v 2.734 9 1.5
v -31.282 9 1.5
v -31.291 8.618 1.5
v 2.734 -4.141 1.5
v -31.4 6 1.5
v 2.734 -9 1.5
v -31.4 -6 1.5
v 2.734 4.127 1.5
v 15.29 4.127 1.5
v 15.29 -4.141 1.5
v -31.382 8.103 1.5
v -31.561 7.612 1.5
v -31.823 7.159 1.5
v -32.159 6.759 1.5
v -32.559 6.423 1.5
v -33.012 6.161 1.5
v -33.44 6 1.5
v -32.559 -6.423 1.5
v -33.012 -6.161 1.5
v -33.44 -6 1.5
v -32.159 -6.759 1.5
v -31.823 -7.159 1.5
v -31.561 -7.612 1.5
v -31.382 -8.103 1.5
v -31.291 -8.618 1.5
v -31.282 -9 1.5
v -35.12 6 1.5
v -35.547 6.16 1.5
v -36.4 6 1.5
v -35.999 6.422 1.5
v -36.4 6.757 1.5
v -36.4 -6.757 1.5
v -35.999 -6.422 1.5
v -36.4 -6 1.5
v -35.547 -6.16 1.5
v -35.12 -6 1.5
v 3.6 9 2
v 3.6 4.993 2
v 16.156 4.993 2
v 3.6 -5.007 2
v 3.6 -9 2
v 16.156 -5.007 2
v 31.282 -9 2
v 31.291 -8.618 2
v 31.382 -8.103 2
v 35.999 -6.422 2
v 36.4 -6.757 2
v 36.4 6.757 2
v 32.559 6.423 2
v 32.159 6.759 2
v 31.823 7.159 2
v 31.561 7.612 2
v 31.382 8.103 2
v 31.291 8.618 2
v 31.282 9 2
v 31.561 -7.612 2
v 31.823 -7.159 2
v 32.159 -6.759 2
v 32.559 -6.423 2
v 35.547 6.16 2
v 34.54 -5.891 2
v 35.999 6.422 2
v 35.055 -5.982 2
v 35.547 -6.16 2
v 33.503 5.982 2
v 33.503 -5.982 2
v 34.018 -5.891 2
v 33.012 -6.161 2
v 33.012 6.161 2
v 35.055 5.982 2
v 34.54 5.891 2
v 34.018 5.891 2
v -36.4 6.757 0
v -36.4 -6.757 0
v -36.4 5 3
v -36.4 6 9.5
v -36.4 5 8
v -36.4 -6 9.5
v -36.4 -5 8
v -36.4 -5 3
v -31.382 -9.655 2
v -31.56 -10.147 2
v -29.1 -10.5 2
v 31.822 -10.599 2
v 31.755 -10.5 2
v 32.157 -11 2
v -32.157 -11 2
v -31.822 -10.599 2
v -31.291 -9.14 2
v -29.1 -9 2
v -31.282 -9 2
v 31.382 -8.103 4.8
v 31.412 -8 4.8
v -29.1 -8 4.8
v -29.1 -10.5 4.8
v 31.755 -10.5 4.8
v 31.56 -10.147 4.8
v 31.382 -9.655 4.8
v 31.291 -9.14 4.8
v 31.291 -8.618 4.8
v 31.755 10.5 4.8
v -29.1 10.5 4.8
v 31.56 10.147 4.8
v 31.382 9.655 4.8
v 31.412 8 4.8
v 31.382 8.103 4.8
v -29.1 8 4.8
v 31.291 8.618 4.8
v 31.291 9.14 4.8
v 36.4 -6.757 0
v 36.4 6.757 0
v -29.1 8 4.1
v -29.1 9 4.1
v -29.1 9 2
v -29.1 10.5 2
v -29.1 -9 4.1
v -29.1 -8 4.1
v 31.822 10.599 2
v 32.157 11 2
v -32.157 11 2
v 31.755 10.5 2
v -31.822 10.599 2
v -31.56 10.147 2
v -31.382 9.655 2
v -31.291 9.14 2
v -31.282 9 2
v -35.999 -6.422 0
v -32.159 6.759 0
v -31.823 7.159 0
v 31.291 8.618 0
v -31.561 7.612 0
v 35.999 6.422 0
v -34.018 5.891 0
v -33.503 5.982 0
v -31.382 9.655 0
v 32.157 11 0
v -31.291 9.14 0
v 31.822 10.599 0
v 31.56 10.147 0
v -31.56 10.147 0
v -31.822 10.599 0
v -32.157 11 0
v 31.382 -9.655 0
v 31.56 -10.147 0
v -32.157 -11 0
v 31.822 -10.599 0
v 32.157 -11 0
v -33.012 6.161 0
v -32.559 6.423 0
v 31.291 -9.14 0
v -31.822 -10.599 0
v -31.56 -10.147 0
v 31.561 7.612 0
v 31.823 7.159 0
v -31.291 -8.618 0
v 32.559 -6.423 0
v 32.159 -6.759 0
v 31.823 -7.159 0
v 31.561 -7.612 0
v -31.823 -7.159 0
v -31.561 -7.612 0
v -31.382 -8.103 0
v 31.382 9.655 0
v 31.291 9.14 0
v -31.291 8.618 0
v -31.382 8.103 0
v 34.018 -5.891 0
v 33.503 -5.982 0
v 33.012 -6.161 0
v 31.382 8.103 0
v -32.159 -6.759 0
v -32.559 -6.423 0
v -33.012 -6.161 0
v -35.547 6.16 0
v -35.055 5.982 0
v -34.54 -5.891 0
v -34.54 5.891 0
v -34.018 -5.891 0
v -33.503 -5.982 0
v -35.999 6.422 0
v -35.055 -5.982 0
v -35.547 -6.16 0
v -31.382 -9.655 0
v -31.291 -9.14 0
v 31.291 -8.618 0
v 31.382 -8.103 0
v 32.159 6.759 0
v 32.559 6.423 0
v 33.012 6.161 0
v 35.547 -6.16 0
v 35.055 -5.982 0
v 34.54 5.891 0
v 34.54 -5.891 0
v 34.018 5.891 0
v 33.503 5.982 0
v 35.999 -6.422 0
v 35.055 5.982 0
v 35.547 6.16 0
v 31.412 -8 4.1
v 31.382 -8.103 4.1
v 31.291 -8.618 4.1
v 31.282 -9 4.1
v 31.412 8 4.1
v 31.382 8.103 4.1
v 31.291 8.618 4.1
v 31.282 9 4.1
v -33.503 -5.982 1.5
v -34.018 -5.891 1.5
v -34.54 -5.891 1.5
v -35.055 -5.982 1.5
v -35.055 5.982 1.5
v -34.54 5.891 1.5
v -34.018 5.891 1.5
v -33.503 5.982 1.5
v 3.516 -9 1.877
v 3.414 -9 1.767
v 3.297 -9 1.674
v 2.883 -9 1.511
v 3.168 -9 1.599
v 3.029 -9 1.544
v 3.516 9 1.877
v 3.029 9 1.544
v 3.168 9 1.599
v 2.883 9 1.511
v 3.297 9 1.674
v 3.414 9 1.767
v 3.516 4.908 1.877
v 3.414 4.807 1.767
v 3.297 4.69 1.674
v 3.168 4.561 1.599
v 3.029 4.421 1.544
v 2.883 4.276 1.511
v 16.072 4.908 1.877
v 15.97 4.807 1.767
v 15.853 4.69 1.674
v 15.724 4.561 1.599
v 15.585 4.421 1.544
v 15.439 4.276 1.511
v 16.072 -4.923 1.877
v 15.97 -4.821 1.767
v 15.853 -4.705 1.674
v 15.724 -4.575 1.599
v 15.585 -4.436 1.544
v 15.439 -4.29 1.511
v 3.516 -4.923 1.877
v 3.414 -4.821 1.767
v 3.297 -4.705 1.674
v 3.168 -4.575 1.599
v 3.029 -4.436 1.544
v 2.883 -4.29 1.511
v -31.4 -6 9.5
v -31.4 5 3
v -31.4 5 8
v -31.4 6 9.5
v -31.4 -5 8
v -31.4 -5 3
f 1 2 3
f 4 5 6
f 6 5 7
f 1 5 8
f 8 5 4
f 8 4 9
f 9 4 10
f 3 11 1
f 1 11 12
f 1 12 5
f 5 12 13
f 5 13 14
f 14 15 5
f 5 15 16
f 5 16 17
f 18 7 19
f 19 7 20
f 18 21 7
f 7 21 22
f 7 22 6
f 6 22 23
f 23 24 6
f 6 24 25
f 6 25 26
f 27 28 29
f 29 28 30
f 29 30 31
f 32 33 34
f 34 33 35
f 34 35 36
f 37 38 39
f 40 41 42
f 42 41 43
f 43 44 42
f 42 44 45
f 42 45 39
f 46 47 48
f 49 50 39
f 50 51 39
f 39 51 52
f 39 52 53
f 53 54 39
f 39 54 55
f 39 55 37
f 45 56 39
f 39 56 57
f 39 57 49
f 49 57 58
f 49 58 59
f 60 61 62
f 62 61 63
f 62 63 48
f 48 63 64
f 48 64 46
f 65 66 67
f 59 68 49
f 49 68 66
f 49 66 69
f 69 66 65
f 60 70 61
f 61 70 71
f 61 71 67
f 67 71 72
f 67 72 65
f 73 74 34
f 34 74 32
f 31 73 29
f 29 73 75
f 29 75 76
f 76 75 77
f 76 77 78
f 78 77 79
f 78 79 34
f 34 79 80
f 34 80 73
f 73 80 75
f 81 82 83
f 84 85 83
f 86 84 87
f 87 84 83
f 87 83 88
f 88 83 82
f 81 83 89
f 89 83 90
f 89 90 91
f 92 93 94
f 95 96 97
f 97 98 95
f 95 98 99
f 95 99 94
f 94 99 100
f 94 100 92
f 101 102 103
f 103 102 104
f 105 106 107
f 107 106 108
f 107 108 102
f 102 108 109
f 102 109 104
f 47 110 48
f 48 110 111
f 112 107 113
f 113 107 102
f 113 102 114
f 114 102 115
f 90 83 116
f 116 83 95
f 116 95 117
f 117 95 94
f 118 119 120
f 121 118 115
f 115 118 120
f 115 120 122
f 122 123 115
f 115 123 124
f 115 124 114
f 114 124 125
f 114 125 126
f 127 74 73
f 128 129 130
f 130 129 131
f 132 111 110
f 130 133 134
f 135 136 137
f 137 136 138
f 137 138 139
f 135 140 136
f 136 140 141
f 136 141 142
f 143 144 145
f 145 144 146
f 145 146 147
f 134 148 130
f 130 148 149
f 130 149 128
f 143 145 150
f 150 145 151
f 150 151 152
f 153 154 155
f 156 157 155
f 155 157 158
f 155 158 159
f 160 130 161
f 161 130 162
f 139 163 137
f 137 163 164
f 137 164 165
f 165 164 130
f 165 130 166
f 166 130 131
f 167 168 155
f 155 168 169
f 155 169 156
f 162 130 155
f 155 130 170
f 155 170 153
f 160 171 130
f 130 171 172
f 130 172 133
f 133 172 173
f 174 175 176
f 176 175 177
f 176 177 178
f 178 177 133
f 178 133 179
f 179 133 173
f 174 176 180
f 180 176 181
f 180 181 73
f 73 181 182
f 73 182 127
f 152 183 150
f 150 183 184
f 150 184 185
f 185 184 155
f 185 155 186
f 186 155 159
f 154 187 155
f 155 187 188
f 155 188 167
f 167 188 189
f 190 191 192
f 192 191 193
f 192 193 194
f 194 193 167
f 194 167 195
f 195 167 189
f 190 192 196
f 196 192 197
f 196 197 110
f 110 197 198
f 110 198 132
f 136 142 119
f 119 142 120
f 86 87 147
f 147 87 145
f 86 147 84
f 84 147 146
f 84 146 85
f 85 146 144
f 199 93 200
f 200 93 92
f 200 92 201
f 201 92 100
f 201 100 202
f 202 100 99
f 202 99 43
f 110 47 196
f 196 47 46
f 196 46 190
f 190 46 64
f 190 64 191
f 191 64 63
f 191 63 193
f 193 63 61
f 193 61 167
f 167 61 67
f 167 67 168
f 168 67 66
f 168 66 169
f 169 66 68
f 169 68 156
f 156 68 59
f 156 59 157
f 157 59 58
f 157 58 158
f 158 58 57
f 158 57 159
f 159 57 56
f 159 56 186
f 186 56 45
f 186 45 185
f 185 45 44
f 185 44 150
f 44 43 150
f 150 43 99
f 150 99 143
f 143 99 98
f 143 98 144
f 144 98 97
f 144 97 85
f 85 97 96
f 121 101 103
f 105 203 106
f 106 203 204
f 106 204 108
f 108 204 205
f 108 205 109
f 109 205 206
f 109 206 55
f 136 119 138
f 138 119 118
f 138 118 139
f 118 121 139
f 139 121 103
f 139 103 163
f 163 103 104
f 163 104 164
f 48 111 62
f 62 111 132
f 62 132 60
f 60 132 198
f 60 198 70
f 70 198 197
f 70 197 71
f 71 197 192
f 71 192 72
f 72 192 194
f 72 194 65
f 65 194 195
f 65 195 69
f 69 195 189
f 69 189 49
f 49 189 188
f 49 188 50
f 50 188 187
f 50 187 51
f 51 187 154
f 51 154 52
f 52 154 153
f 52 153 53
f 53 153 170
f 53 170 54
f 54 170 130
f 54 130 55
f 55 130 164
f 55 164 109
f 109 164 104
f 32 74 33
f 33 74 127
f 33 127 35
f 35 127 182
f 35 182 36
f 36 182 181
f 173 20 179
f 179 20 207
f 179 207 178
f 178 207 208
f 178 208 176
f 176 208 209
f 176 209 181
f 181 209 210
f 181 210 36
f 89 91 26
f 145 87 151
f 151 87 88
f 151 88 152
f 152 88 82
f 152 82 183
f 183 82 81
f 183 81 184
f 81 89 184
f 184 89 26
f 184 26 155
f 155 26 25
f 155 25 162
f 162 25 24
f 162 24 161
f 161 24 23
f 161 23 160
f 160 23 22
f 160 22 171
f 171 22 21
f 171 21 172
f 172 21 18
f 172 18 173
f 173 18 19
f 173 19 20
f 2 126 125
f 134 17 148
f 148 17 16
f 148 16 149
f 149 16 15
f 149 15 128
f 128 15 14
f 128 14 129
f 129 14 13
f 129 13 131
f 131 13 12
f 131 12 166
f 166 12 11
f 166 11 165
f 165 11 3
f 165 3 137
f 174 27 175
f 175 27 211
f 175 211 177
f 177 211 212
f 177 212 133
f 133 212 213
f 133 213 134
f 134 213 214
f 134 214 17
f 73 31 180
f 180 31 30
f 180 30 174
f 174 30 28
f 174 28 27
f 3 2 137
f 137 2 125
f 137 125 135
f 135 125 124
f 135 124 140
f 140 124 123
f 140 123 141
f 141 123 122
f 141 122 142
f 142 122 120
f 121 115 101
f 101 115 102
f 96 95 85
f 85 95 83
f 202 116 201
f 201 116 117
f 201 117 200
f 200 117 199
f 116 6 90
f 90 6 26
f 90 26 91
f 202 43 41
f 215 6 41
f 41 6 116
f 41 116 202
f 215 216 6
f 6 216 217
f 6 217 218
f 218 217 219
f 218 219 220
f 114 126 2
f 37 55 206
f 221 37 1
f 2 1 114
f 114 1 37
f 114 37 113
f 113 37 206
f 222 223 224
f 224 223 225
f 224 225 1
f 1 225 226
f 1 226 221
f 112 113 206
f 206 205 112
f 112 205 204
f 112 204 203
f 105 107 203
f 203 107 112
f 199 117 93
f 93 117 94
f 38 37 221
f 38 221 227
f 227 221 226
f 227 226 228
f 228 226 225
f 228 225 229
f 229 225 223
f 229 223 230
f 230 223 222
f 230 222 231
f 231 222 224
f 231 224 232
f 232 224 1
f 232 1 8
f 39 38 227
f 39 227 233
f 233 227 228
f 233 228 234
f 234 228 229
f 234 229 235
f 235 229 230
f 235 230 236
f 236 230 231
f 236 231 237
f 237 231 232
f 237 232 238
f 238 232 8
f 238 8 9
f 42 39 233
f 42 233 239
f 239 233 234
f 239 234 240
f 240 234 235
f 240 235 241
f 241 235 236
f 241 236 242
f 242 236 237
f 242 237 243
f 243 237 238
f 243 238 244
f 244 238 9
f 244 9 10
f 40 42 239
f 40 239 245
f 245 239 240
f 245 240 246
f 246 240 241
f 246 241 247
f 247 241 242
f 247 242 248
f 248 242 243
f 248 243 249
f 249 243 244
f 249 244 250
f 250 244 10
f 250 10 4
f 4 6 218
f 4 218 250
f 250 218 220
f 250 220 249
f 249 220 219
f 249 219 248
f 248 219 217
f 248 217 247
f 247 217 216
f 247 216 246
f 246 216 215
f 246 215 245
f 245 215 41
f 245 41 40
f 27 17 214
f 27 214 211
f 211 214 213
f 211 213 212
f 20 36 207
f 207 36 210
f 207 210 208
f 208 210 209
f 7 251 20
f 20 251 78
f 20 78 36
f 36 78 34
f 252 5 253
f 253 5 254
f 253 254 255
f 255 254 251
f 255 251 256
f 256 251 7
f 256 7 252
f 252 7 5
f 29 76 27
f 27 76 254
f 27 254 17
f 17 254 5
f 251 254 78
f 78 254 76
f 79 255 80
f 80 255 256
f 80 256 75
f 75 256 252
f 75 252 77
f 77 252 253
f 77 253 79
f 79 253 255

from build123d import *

# Parameters (mm, degrees)
SKIZZE1_W                       = 22
SKIZZE1_H                       = 72.8
AUFSATZ_LINEAR_AUSTRAGEN1_DEPTH = 2
SKIZZE2_R                       = 3
SCHNITT_LINEAR_AUSTRAGEN1_DEPTH = 2
SKIZZE3_W                       = 65.5
SKIZZE3_H                       = 21
AUFSATZ_LINEAR_AUSTRAGEN2_DEPTH = 2.8
SCHNITT_LINEAR_AUSTRAGEN2_DEPTH = 67.590464783
SKIZZE5_R                       = 3
SCHNITT_LINEAR_AUSTRAGEN4_DEPTH = 39.128729326
SKIZZE6_W                       = 18
SKIZZE6_H                       = 1
SCHNITT_LINEAR_AUSTRAGEN5_DEPTH = 40
SKIZZE8_W                       = 15
SKIZZE8_H                       = 10
SCHNITT_LINEAR_AUSTRAGEN6_DEPTH = 0.5
VERRUNDUNG3_R                   = 1
SKIZZE9_W                       = 5
SKIZZE9_H                       = 12
AUFSATZ_LINEAR_AUSTRAGEN3_DEPTH = 8
SKIZZE10_W                      = 10
SKIZZE10_H                      = 5
SCHNITT_LINEAR_AUSTRAGEN7_DEPTH = 75.236715983


with BuildPart() as part:
    # Skizze1 → Aufsatz-Linear austragen1 (new body)
    with BuildSketch(Plane(origin=(0, 0, 0), x_dir=(0, 1, 0), z_dir=(0, 0, 1))):
        Rectangle(SKIZZE1_W, SKIZZE1_H)
    extrude(amount=AUFSATZ_LINEAR_AUSTRAGEN1_DEPTH)

    # Skizze2 → Schnitt-Linear austragen1 (cut)
    with BuildSketch(Plane.XY.offset(2)):
        with Locations((-34.28, 8.88)):
            Circle(SKIZZE2_R)
        with Locations((-34.28, -8.88)):
            Circle(SKIZZE2_R)
        with Locations((34.28, -8.88)):
            Circle(SKIZZE2_R)
        with Locations((34.28, 8.88)):
            Circle(SKIZZE2_R)
    extrude(amount=-SCHNITT_LINEAR_AUSTRAGEN1_DEPTH, mode=Mode.SUBTRACT)

    # Skizze3 → Aufsatz-Linear austragen2 (add)
    with BuildSketch(Plane.XY.offset(2)):
        with Locations((3.65, 0)):
            Rectangle(SKIZZE3_W, SKIZZE3_H)
    extrude(amount=AUFSATZ_LINEAR_AUSTRAGEN2_DEPTH)

    # Skizze4 → Schnitt-Linear austragen2 (cut, through all)
    with BuildSketch(Plane(origin=(-29.1, 0, 0), x_dir=(0, -1, 0), z_dir=(-1, 0, 0))):
        Polygon((-8, 4.8), (8, 4.8), (8, 4.1), (9, 4.1), (9, 2), (-9, 2), (-9, 4.1), (-8, 4.1), align=None)
    extrude(amount=-SCHNITT_LINEAR_AUSTRAGEN2_DEPTH, mode=Mode.SUBTRACT)

    # Skizze5 → Schnitt-Linear austragen4 (cut, through all)
    with BuildSketch(Plane(origin=(0, 0, 2), x_dir=(1, 0, 0), z_dir=(0, 0, -1))):
        with Locations((34.28, -8.88)):
            Circle(SKIZZE5_R)
        with Locations((34.28, 8.88)):
            Circle(SKIZZE5_R)
    extrude(amount=-SCHNITT_LINEAR_AUSTRAGEN4_DEPTH, mode=Mode.SUBTRACT)

    # Skizze6 → Schnitt-Linear austragen5 (cut)
    with BuildSketch(Plane(origin=(-36.4, 0, 0), x_dir=(0, -1, 0), z_dir=(-1, 0, 0))):
        with Locations((0, 2)):
            Rectangle(SKIZZE6_W, SKIZZE6_H)
    extrude(amount=-SCHNITT_LINEAR_AUSTRAGEN5_DEPTH, mode=Mode.SUBTRACT)

    # Skizze8 → Schnitt-Linear austragen6 (cut)
    with BuildSketch(Plane.XY.offset(2)):
        with Locations((8.655984658, -0.007335612)):
            Rectangle(SKIZZE8_W, SKIZZE8_H)
    extrude(amount=-SCHNITT_LINEAR_AUSTRAGEN6_DEPTH, mode=Mode.SUBTRACT)

    # Verrundung3
    # the kernel refuses this fillet: 1 mm, written as the material it adds along each edge
    with BuildSketch(Plane(origin=(3.6, -9, 1.5), x_dir=(0, 0, 1), z_dir=(0, 1, 0))) as verrundung3_piece_1:
        with BuildLine():
            CenterArc((1, -0.866025404), VERRUNDUNG3_R, 120, 60)
            Line((0, -0.866025404), (-0.02, -0.866025404))
            Line((-0.02, -0.866025404), (-0.02, 0))
            Line((-0.02, 0), (0, 0.02))
            ThreePointArc((0, 0.02), (0.25, 0.02), (0.49, 0.017320508))
            Line((0.49, 0.017320508), (0.5, 0))
        make_face()
    extrude(amount=3.992664388)
    with BuildSketch(Plane(origin=(3.6, -5.007335612, 1.5), x_dir=(0, 0, 1), z_dir=(1, 0, 0)), Plane(origin=(16.155984658, 4.992664388, 1.5), x_dir=(0, 0, 1), z_dir=(-1, 0, 0))) as verrundung3_piece_2:
        with BuildLine():
            CenterArc((1, -0.866025404), VERRUNDUNG3_R, 120, 60)
            Line((0, -0.866025404), (-0.02, -0.866025404))
            Line((-0.02, -0.866025404), (-0.02, 0))
            Line((-0.02, 0), (0, 0.02))
            ThreePointArc((0, 0.02), (0.25, 0.02), (0.49, 0.017320508))
            Line((0.49, 0.017320508), (0.5, 0))
        make_face()
    extrude(amount=12.555984658)
    with BuildSketch(Plane(origin=(3.6, 4.992664388, 1.5), x_dir=(0, 0, 1), z_dir=(0, 1, 0))) as verrundung3_piece_3:
        with BuildLine():
            CenterArc((1, -0.866025404), VERRUNDUNG3_R, 120, 60)
            Line((0, -0.866025404), (-0.02, -0.866025404))
            Line((-0.02, -0.866025404), (-0.02, 0))
            Line((-0.02, 0), (0, 0.02))
            ThreePointArc((0, 0.02), (0.25, 0.02), (0.49, 0.017320508))
            Line((0.49, 0.017320508), (0.5, 0))
        make_face()
    extrude(amount=4.007335612)
    with BuildSketch(Plane(origin=(16.155984658, -5.007335612, 1.5), x_dir=(0, 0, 1), z_dir=(0, 1, 0))) as verrundung3_piece_4:
        with BuildLine():
            CenterArc((1, -0.866025404), VERRUNDUNG3_R, 120, 60)
            Line((0, -0.866025404), (-0.02, -0.866025404))
            Line((-0.02, -0.866025404), (-0.02, 0))
            Line((-0.02, 0), (0, 0.02))
            ThreePointArc((0, 0.02), (0.25, 0.02), (0.49, 0.017320508))
            Line((0.49, 0.017320508), (0.5, 0))
        make_face()
    extrude(amount=10)
    with BuildSketch(Plane(origin=(3.6, -9, 1.5), x_dir=(0, 0, 1), z_dir=(0, 1, 0))) as verrundung3_piece_5a_section:
        with BuildLine():
            CenterArc((1, -0.866025404), VERRUNDUNG3_R, 120, 60)
            Line((0, -0.866025404), (-0.02, -0.866025404))
            Line((-0.02, -0.866025404), (-0.02, 0))
            Line((-0.02, 0), (0, 0.02))
            ThreePointArc((0, 0.02), (0.25, 0.02), (0.49, 0.017320508))
            Line((0.49, 0.017320508), (0.5, 0))
        make_face()
    verrundung3_piece_5a = extrude(amount=6.157727897, mode=Mode.PRIVATE)
    verrundung3_piece_5a = split(verrundung3_piece_5a, bisect_by=Plane(origin=(3.383689554, -5.007335612, 1.629516711), z_dir=(0, 1, 0)), keep=Keep.TOP, mode=Mode.PRIVATE)
    with BuildSketch(Plane(origin=(1.434936491, -5.007335612, 1.5), x_dir=(0, 0, 1), z_dir=(1, 0, 0))) as verrundung3_piece_5b_section:
        with BuildLine():
            CenterArc((1, -0.866025404), VERRUNDUNG3_R, 120, 60)
            Line((0, -0.866025404), (-0.02, -0.866025404))
            Line((-0.02, -0.866025404), (-0.02, 0))
            Line((-0.02, 0), (0, 0.02))
            ThreePointArc((0, 0.02), (0.25, 0.02), (0.49, 0.017320508))
            Line((0.49, 0.017320508), (0.5, 0))
        make_face()
    verrundung3_piece_5b = extrude(amount=14.721048168, mode=Mode.PRIVATE)
    verrundung3_piece_5b = split(verrundung3_piece_5b, bisect_by=Plane(origin=(3.6, -4.791025166, 1.629516711), z_dir=(-1, 0, 0)), keep=Keep.TOP, mode=Mode.PRIVATE)
    verrundung3_piece_5 = verrundung3_piece_5a & verrundung3_piece_5b
    add(verrundung3_piece_5)
    with BuildSketch(Plane(origin=(3.6, -5.007335612, 1.5), x_dir=(0, 0, 1), z_dir=(1, 0, 0))) as verrundung3_piece_6a_section:
        with BuildLine():
            CenterArc((1, -0.866025404), VERRUNDUNG3_R, 120, 60)
            Line((0, -0.866025404), (-0.02, -0.866025404))
            Line((-0.02, -0.866025404), (-0.02, 0))
            Line((-0.02, 0), (0, 0.02))
            ThreePointArc((0, 0.02), (0.25, 0.02), (0.49, 0.017320508))
            Line((0.49, 0.017320508), (0.5, 0))
        make_face()
    verrundung3_piece_6a = extrude(amount=14.721048168, mode=Mode.PRIVATE)
    verrundung3_piece_6a = split(verrundung3_piece_6a, bisect_by=Plane(origin=(16.155984658, -4.791025166, 1.629516711), z_dir=(1, 0, 0)), keep=Keep.TOP, mode=Mode.PRIVATE)
    with BuildSketch(Plane(origin=(16.155984658, -7.172399122, 1.5), x_dir=(0, 0, 1), z_dir=(0, 1, 0))) as verrundung3_piece_6b_section:
        with BuildLine():
            CenterArc((1, -0.866025404), VERRUNDUNG3_R, 120, 60)
            Line((0, -0.866025404), (-0.02, -0.866025404))
            Line((-0.02, -0.866025404), (-0.02, 0))
            Line((-0.02, 0), (0, 0.02))
            ThreePointArc((0, 0.02), (0.25, 0.02), (0.49, 0.017320508))
            Line((0.49, 0.017320508), (0.5, 0))
        make_face()
    verrundung3_piece_6b = extrude(amount=12.165063509, mode=Mode.PRIVATE)
    verrundung3_piece_6b = split(verrundung3_piece_6b, bisect_by=Plane(origin=(15.939674213, -5.007335612, 1.629516711), z_dir=(0, -1, 0)), keep=Keep.TOP, mode=Mode.PRIVATE)
    verrundung3_piece_6 = verrundung3_piece_6a & verrundung3_piece_6b
    add(verrundung3_piece_6)
    with BuildSketch(Plane(origin=(16.155984658, 4.992664388, 1.5), x_dir=(0, 0, 1), z_dir=(-1, 0, 0))) as verrundung3_piece_7a_section:
        with BuildLine():
            CenterArc((1, -0.866025404), VERRUNDUNG3_R, 120, 60)
            Line((0, -0.866025404), (-0.02, -0.866025404))
            Line((-0.02, -0.866025404), (-0.02, 0))
            Line((-0.02, 0), (0, 0.02))
            ThreePointArc((0, 0.02), (0.25, 0.02), (0.49, 0.017320508))
            Line((0.49, 0.017320508), (0.5, 0))
        make_face()
    verrundung3_piece_7a = extrude(amount=14.721048168, mode=Mode.PRIVATE)
    verrundung3_piece_7a = split(verrundung3_piece_7a, bisect_by=Plane(origin=(3.6, 4.776353942, 1.629516711), z_dir=(-1, 0, 0)), keep=Keep.TOP, mode=Mode.PRIVATE)
    with BuildSketch(Plane(origin=(3.6, 2.827600878, 1.5), x_dir=(0, 0, 1), z_dir=(0, 1, 0))) as verrundung3_piece_7b_section:
        with BuildLine():
            CenterArc((1, -0.866025404), VERRUNDUNG3_R, 120, 60)
            Line((0, -0.866025404), (-0.02, -0.866025404))
            Line((-0.02, -0.866025404), (-0.02, 0))
            Line((-0.02, 0), (0, 0.02))
            ThreePointArc((0, 0.02), (0.25, 0.02), (0.49, 0.017320508))
            Line((0.49, 0.017320508), (0.5, 0))
        make_face()
    verrundung3_piece_7b = extrude(amount=6.172399122, mode=Mode.PRIVATE)
    verrundung3_piece_7b = split(verrundung3_piece_7b, bisect_by=Plane(origin=(3.383689554, 4.992664388, 1.629516711), z_dir=(0, -1, 0)), keep=Keep.TOP, mode=Mode.PRIVATE)
    verrundung3_piece_7 = verrundung3_piece_7a & verrundung3_piece_7b
    add(verrundung3_piece_7)
    with BuildSketch(Plane(origin=(16.155984658, -5.007335612, 1.5), x_dir=(0, 0, 1), z_dir=(0, 1, 0))) as verrundung3_piece_8a_section:
        with BuildLine():
            CenterArc((1, -0.866025404), VERRUNDUNG3_R, 120, 60)
            Line((0, -0.866025404), (-0.02, -0.866025404))
            Line((-0.02, -0.866025404), (-0.02, 0))
            Line((-0.02, 0), (0, 0.02))
            ThreePointArc((0, 0.02), (0.25, 0.02), (0.49, 0.017320508))
            Line((0.49, 0.017320508), (0.5, 0))
        make_face()
    verrundung3_piece_8a = extrude(amount=12.165063509, mode=Mode.PRIVATE)
    verrundung3_piece_8a = split(verrundung3_piece_8a, bisect_by=Plane(origin=(15.939674213, 4.992664388, 1.629516711), z_dir=(0, 1, 0)), keep=Keep.TOP, mode=Mode.PRIVATE)
    with BuildSketch(Plane(origin=(18.321048168, 4.992664388, 1.5), x_dir=(0, 0, 1), z_dir=(-1, 0, 0))) as verrundung3_piece_8b_section:
        with BuildLine():
            CenterArc((1, -0.866025404), VERRUNDUNG3_R, 120, 60)
            Line((0, -0.866025404), (-0.02, -0.866025404))
            Line((-0.02, -0.866025404), (-0.02, 0))
            Line((-0.02, 0), (0, 0.02))
            ThreePointArc((0, 0.02), (0.25, 0.02), (0.49, 0.017320508))
            Line((0.49, 0.017320508), (0.5, 0))
        make_face()
    verrundung3_piece_8b = extrude(amount=14.721048168, mode=Mode.PRIVATE)
    verrundung3_piece_8b = split(verrundung3_piece_8b, bisect_by=Plane(origin=(16.155984658, 4.776353942, 1.629516711), z_dir=(1, 0, 0)), keep=Keep.TOP, mode=Mode.PRIVATE)
    verrundung3_piece_8 = verrundung3_piece_8a & verrundung3_piece_8b
    add(verrundung3_piece_8)

    # Skizze9 → Aufsatz-Linear austragen3 (add)
    with BuildSketch(Plane.XY.offset(1.5)):
        with Locations((-33.9, 0)):
            Rectangle(SKIZZE9_W, SKIZZE9_H)
    extrude(amount=AUFSATZ_LINEAR_AUSTRAGEN3_DEPTH)

    # Skizze10 → Schnitt-Linear austragen7 (cut, through all)
    with BuildSketch(Plane(origin=(-36.4, 0, 0), x_dir=(0, -1, 0), z_dir=(-1, 0, 0))):
        with Locations((0, 5.5)):
            Rectangle(SKIZZE10_W, SKIZZE10_H)
    extrude(amount=-SCHNITT_LINEAR_AUSTRAGEN7_DEPTH, mode=Mode.SUBTRACT)


solid = part.part
